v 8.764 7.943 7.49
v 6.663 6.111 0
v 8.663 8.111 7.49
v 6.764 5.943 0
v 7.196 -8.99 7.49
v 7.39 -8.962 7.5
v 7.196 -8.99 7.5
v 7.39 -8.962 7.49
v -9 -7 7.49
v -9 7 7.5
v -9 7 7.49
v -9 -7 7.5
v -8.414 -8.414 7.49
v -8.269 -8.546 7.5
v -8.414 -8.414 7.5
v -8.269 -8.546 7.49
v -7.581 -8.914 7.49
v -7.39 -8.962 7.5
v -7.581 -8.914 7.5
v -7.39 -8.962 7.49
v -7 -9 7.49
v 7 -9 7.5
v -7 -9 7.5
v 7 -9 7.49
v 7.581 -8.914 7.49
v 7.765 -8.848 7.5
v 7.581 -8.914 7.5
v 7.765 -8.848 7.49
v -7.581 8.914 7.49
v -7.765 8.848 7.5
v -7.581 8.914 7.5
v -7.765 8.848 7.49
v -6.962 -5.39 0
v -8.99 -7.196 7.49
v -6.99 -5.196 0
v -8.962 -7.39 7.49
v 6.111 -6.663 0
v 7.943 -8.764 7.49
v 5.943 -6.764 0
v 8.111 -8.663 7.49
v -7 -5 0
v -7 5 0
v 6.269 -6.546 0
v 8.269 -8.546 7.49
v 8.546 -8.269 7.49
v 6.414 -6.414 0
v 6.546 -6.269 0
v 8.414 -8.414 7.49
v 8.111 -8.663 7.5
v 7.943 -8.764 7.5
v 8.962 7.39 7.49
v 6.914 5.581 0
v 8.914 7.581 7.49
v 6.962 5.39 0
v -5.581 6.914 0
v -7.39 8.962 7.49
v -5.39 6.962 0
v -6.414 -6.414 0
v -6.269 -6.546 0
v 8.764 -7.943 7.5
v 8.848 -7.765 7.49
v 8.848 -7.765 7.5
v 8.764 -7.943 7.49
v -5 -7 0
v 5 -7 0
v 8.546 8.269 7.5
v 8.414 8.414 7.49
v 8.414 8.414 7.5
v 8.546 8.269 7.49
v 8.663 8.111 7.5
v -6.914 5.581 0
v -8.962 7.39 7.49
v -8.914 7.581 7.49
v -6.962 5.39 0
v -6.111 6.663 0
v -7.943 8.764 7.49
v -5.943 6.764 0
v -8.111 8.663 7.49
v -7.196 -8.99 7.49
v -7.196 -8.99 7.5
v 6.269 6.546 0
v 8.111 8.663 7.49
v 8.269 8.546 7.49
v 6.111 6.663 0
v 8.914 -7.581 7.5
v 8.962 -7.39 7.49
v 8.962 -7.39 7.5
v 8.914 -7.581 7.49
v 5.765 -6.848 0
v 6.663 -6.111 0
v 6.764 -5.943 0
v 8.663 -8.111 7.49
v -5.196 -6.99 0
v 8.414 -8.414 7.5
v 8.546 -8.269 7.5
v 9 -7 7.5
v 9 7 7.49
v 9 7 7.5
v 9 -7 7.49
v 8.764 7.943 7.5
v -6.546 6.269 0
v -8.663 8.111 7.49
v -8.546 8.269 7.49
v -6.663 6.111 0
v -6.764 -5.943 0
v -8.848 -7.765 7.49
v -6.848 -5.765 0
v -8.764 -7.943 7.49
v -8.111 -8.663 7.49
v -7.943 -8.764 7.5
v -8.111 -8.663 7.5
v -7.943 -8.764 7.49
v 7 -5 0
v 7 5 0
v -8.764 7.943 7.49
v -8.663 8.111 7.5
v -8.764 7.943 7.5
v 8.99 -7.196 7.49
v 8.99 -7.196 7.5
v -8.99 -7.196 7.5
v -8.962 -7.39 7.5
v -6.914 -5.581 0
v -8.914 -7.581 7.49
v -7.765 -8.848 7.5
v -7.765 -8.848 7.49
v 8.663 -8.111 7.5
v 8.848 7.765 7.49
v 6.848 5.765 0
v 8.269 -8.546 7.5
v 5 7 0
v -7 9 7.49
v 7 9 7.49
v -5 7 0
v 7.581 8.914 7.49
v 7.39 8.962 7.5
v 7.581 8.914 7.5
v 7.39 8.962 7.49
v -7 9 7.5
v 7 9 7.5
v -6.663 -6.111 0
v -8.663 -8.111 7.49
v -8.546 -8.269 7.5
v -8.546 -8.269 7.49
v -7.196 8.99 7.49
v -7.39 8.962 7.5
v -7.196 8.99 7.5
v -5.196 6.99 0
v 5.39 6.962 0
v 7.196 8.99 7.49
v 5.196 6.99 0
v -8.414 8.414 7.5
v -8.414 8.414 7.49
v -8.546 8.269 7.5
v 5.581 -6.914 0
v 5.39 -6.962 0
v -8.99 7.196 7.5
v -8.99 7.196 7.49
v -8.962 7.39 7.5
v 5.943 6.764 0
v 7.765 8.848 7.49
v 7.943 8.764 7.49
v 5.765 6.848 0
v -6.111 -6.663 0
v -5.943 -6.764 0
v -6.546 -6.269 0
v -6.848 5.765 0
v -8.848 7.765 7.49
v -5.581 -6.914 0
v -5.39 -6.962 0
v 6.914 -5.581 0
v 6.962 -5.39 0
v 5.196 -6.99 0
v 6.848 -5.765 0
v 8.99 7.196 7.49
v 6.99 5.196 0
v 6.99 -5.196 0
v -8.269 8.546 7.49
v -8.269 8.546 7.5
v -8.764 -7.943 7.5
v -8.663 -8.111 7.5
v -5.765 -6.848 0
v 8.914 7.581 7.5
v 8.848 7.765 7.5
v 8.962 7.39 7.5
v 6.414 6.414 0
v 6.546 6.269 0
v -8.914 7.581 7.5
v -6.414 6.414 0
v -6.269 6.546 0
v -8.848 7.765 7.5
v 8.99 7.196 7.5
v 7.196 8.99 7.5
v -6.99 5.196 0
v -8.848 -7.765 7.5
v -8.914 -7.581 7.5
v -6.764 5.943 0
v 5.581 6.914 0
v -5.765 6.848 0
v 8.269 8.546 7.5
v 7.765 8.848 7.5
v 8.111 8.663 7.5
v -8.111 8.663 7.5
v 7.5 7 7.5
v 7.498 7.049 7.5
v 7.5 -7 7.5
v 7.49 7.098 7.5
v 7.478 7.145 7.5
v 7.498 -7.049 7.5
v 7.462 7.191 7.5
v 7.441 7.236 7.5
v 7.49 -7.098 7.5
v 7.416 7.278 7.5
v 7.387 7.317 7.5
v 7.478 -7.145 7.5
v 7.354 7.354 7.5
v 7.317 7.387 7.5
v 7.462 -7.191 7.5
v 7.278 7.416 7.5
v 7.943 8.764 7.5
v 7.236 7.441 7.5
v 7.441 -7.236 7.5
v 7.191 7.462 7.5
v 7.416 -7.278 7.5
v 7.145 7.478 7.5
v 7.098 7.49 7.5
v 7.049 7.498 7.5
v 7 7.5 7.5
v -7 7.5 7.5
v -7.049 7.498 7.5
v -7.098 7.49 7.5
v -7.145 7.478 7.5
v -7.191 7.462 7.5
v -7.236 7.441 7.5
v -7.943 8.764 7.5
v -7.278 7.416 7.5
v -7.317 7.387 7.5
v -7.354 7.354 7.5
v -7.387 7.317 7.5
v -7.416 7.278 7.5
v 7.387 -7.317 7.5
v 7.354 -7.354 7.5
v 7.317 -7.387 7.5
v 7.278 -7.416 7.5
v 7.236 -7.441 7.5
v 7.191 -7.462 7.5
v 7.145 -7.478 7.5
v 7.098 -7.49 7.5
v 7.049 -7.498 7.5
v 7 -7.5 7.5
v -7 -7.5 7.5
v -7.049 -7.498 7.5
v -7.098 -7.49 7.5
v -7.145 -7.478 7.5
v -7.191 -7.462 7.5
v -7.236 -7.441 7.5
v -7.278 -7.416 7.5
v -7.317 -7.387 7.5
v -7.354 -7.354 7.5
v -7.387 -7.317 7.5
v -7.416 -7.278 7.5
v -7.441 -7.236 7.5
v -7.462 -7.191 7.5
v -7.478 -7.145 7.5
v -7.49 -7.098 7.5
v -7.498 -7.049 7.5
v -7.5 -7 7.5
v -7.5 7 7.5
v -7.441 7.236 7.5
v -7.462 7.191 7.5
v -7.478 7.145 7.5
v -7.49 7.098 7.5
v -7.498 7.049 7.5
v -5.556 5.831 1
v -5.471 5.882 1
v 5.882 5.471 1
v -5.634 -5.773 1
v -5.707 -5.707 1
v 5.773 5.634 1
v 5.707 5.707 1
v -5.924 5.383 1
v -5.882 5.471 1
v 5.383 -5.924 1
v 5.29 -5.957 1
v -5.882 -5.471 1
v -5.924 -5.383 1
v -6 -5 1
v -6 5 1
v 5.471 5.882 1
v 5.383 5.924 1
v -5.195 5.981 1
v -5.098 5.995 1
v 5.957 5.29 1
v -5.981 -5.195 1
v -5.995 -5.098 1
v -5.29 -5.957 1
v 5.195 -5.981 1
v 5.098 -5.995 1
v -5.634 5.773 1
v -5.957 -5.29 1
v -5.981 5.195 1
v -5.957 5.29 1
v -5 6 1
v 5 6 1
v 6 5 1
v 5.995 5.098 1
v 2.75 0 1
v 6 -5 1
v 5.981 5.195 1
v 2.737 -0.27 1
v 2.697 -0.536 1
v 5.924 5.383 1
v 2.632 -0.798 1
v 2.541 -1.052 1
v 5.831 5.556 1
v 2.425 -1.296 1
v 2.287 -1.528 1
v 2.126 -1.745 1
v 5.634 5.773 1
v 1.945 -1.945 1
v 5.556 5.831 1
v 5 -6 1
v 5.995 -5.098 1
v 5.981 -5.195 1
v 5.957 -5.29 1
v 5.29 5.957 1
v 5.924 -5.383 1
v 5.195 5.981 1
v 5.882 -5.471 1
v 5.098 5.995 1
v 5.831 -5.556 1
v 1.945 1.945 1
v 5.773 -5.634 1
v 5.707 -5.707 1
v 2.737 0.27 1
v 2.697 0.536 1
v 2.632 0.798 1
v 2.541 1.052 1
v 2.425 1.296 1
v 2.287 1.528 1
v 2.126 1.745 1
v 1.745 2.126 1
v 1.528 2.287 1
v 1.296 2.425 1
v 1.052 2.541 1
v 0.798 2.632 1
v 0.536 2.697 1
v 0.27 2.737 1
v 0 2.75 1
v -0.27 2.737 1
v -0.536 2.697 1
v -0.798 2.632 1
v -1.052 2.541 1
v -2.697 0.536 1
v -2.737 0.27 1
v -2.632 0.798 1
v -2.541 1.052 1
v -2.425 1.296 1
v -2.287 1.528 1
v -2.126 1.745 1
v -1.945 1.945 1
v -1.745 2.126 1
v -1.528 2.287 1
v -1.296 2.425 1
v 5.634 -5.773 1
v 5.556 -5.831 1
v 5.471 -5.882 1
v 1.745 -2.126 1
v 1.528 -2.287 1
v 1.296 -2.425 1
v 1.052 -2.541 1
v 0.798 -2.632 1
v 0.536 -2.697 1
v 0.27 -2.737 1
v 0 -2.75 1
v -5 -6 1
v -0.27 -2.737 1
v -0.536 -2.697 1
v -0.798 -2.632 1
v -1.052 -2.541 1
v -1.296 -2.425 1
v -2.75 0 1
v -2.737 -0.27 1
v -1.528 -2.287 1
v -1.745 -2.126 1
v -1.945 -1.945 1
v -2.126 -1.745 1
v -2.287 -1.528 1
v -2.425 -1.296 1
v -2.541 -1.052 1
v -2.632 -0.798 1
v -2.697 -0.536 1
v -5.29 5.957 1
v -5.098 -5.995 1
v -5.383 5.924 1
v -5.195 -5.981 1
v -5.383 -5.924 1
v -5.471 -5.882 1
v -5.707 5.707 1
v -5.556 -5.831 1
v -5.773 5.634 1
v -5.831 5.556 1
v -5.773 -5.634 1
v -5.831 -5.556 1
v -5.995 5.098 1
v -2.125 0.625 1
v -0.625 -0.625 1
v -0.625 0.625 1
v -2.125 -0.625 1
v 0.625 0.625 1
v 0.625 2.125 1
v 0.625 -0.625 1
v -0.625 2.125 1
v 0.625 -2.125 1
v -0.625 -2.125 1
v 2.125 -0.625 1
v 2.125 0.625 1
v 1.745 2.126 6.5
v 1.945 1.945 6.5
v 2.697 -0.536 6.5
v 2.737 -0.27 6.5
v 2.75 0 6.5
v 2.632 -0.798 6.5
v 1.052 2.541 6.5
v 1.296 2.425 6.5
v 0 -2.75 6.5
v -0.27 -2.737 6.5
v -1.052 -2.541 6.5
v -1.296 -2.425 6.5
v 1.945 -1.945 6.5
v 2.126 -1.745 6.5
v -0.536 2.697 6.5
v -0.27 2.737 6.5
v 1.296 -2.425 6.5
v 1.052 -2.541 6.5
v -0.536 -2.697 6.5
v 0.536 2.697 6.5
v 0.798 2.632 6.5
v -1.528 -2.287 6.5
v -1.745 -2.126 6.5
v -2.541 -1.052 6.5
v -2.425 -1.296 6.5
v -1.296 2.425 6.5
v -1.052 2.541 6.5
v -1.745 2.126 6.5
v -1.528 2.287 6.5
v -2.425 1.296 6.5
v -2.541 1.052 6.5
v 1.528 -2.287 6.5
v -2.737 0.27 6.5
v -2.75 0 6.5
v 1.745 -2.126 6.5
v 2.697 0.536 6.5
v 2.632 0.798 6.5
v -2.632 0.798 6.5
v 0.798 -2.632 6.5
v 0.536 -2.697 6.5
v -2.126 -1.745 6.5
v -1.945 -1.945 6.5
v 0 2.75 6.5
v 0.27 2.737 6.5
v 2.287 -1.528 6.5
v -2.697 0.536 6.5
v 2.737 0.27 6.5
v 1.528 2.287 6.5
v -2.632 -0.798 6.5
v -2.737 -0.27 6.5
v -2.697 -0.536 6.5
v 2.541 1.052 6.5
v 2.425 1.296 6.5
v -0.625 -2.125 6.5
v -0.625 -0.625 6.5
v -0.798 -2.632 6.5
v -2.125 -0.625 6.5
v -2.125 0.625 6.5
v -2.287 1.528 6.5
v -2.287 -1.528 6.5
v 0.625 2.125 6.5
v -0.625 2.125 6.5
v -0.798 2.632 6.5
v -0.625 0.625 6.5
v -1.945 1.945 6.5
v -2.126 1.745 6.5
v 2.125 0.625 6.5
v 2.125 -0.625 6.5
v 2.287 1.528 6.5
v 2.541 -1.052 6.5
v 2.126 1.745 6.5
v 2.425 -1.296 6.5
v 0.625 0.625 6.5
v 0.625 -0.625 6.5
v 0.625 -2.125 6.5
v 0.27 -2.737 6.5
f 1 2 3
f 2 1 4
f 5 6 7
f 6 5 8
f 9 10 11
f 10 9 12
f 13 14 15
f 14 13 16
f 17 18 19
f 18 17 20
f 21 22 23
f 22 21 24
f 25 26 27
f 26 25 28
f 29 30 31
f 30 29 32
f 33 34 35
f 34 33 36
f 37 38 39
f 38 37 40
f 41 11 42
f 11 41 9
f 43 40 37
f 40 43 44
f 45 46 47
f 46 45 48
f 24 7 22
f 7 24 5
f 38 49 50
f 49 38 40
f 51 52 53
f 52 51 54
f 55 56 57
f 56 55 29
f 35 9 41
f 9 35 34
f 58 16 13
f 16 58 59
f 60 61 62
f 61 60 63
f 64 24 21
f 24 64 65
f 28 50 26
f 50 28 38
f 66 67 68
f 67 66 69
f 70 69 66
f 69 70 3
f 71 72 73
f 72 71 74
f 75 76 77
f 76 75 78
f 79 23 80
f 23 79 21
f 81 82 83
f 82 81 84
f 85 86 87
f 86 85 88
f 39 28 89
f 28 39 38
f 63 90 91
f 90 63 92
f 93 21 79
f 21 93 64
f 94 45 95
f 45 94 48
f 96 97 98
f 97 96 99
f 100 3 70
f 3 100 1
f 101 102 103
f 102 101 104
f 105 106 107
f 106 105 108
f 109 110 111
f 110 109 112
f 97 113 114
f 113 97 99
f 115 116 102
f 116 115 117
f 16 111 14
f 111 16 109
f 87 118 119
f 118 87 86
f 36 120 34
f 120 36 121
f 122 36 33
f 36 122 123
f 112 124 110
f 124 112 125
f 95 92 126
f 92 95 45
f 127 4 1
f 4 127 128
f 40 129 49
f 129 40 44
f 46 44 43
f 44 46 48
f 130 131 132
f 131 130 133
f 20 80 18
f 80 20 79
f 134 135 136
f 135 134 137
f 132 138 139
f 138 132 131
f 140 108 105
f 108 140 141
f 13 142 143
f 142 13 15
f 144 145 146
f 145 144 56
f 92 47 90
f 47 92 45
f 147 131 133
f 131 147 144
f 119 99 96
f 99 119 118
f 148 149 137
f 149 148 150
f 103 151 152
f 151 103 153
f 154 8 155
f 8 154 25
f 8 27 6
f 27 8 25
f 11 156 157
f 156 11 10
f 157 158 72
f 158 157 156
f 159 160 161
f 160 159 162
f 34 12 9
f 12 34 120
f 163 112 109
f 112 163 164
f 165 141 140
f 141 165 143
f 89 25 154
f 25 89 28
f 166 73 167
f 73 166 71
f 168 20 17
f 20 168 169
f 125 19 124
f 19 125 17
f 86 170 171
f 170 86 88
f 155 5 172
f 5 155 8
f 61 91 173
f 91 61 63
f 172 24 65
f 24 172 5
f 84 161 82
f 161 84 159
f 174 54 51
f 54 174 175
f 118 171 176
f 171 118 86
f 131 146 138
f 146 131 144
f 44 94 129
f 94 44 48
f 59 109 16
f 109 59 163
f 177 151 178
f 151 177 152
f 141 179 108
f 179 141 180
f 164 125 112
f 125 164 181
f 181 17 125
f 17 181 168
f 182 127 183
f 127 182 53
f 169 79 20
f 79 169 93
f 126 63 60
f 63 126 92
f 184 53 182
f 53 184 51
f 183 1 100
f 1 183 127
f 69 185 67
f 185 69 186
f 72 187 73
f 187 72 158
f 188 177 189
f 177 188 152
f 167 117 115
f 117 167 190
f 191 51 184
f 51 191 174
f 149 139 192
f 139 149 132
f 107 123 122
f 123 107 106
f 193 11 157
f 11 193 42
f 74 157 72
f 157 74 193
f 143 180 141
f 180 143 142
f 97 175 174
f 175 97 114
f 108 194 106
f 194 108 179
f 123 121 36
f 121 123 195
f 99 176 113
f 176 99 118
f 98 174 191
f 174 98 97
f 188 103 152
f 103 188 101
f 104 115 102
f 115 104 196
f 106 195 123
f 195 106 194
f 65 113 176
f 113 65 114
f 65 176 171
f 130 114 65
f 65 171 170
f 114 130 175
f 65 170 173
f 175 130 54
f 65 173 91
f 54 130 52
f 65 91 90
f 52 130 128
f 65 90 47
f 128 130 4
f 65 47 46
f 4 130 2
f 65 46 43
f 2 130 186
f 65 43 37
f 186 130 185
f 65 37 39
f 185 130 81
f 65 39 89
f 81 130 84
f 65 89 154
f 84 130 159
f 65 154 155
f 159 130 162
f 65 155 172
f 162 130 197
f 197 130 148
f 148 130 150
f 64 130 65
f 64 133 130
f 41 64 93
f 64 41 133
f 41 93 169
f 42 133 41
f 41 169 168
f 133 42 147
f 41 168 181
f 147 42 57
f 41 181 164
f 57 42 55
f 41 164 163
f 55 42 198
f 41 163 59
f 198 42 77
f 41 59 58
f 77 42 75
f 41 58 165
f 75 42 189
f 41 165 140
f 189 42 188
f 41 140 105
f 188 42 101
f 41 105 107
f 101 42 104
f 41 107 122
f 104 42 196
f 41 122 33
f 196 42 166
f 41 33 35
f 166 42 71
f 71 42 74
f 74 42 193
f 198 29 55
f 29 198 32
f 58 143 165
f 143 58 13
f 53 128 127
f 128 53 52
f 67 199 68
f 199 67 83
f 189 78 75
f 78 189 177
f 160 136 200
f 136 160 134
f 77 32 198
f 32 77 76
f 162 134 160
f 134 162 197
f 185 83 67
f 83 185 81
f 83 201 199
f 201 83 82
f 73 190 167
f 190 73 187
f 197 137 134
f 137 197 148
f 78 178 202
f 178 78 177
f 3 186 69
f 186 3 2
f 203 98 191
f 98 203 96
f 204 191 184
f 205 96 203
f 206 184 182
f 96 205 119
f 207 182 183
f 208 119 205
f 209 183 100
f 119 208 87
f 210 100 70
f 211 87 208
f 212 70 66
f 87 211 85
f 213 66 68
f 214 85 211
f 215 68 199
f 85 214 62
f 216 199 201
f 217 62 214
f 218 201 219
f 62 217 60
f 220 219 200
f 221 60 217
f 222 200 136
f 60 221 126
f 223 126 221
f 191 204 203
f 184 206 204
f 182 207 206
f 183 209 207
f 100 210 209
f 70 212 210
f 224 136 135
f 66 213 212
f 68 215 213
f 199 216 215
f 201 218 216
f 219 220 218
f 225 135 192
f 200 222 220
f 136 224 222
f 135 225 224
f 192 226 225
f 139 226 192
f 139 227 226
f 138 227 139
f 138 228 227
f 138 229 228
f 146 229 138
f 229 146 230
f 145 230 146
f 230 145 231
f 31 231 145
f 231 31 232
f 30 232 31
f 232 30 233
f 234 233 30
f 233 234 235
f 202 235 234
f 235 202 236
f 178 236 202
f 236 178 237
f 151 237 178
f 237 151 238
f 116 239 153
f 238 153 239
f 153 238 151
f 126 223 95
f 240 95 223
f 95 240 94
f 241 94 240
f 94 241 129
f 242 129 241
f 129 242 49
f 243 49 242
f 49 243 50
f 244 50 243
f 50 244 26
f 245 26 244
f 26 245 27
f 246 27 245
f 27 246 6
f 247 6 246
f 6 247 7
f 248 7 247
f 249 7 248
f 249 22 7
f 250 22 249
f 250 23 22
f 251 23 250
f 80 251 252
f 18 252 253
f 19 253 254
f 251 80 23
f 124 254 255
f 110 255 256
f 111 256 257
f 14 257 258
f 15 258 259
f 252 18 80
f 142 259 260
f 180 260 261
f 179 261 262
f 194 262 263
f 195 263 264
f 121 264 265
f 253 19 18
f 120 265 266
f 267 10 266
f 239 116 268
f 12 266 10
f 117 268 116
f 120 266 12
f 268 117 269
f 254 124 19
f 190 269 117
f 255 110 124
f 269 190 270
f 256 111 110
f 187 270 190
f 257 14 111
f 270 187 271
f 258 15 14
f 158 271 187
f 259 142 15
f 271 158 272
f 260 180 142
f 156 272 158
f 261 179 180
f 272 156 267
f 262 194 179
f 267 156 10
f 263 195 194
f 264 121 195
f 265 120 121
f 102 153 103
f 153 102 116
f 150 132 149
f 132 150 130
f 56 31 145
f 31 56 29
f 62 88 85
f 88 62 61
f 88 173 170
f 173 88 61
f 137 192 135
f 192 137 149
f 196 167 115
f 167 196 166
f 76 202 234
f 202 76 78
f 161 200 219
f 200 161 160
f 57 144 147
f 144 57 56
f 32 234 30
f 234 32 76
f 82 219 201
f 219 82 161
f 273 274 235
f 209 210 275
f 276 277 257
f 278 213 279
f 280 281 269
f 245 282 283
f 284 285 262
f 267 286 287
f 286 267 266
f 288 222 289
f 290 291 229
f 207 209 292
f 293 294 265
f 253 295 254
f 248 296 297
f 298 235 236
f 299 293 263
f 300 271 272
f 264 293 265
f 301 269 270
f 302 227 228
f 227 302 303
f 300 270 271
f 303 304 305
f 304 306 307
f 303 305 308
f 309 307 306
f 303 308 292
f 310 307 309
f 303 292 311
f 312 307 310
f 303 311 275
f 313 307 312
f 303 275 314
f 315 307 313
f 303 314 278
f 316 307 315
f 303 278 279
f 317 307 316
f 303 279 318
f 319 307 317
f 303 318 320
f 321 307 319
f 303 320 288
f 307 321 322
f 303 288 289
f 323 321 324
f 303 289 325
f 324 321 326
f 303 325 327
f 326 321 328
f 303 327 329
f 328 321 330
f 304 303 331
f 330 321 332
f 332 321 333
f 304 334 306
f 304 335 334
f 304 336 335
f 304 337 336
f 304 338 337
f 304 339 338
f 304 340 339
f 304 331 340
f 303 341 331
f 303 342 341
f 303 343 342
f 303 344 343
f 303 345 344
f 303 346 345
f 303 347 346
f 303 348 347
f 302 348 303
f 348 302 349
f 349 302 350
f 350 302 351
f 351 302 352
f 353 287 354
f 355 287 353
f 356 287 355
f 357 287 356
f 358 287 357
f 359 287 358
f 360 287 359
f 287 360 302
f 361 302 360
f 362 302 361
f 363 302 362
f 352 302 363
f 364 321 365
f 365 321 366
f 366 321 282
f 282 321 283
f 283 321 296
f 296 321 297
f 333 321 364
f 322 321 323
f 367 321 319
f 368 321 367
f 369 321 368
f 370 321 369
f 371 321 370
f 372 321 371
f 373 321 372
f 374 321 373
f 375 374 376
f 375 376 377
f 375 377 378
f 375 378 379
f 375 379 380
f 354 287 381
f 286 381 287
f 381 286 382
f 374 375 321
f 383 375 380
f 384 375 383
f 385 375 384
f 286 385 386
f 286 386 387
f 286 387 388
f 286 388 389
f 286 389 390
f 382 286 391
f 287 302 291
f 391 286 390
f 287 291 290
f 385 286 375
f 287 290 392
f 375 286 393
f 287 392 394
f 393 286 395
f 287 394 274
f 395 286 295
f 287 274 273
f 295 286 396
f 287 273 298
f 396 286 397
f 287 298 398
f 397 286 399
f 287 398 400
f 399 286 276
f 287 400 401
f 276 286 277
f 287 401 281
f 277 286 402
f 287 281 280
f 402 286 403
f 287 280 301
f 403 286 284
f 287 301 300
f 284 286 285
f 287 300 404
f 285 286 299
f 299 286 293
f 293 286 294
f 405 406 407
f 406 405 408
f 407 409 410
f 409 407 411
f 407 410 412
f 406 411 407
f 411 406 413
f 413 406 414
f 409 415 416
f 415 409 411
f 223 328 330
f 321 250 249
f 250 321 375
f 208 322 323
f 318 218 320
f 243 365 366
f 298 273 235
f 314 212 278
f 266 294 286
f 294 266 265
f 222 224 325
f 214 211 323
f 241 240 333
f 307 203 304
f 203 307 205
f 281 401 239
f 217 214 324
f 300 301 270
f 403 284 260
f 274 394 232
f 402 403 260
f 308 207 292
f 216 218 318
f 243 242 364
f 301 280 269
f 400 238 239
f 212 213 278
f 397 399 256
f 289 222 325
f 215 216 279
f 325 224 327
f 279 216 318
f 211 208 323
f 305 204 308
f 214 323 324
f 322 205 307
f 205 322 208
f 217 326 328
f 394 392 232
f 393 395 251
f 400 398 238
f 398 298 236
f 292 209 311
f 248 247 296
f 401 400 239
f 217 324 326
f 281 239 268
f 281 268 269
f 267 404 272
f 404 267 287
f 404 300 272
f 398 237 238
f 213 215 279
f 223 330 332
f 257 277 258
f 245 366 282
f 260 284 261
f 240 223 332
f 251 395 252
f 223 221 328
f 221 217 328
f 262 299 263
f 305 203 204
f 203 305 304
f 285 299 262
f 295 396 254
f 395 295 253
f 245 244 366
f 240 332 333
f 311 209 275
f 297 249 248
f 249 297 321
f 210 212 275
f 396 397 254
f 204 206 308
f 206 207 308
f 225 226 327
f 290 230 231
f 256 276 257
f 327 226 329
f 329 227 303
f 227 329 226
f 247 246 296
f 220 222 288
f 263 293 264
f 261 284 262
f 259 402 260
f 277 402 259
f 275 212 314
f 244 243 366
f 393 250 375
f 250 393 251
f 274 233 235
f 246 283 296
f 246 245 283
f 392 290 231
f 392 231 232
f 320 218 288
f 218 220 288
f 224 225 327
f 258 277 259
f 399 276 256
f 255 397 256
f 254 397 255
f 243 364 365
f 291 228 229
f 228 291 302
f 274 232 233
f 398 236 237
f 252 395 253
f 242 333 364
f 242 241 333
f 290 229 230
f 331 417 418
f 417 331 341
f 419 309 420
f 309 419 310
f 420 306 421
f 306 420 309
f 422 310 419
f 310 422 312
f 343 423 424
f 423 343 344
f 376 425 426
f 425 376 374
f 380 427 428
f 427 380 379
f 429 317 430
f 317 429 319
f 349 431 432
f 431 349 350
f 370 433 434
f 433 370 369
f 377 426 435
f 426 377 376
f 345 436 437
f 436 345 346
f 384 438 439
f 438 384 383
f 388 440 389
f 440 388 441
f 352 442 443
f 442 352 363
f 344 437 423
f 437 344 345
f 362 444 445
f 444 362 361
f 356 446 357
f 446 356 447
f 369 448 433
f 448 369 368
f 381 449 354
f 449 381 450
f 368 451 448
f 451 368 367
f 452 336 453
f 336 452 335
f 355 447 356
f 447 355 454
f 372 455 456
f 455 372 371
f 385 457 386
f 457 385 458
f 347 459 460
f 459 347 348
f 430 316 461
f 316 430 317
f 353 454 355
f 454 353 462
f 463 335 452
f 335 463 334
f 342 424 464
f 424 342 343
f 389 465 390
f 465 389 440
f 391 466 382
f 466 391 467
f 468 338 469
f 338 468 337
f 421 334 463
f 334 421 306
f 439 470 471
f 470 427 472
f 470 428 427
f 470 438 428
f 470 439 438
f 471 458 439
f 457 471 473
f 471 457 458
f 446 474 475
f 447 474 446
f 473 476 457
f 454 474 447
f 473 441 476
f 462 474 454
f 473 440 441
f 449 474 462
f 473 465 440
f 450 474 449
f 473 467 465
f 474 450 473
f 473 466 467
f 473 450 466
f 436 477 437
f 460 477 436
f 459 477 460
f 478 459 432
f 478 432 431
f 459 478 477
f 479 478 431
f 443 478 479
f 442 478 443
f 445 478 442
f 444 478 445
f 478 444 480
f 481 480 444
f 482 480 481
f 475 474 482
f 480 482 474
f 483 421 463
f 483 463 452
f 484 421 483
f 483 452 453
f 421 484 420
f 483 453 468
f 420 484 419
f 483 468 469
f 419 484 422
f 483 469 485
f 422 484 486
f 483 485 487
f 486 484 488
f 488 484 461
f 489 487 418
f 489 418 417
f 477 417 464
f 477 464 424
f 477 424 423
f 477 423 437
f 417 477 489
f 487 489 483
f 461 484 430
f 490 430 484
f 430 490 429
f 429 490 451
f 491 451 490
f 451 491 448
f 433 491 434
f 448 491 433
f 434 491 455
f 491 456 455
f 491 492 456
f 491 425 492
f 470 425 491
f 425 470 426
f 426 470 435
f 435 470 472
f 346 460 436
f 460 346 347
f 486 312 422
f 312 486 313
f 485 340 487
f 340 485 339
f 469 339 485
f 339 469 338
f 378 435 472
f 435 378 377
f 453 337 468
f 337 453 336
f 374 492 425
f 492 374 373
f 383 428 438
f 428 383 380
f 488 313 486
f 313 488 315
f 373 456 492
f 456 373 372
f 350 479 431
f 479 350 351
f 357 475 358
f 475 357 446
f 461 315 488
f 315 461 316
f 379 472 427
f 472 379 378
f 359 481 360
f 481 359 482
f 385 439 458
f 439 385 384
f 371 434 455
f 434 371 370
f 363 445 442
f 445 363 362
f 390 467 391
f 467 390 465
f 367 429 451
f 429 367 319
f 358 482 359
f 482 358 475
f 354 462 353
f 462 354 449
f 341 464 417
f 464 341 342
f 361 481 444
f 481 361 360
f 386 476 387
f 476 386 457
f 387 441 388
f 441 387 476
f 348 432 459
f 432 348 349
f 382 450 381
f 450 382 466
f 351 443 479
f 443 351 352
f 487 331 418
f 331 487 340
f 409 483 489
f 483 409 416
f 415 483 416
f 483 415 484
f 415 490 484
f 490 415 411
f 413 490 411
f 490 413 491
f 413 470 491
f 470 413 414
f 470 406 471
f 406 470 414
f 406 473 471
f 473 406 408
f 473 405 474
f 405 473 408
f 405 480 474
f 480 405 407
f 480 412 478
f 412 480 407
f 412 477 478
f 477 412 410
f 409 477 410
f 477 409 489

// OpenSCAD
// Cherry MX keycap generator with a text legend on top.
// Dimensions are taken from special_keycaps.3mf (Bambu Parametric Model Maker).
// Open in OpenSCAD and use the Customizer (Window > Customizer) to change values.

/* [Legend] */
legend          = "A";
// Any font installed on your system, e.g. "Liberation Sans:style=Bold"
font            = "Liberation Sans:style=Bold";
font_size       = 6;
// embossed = raised, debossed = engraved, inlay = flush (separate body for multi-colour), none
legend_mode     = "inlay"; // [embossed, debossed, inlay, none]
legend_depth    = 0.3;
legend_rotation = 0;
legend_offset   = [0, 0];

/* [Size] */
// Key width in units (1, 1.25, 1.5, 2, 2.25, ...)
units           = 1;
unit_pitch      = 19.05;
// Which part to output (inlay mode: export "cap" and "legend" separately as one multi-part object)
part            = "all"; // [all, cap, legend]
// Flip so the top sits on the bed, like the reference print
print_orientation = true;

/* [Shape] */
height          = 7.5;
base_size       = 18;     // 1u outer size at the base
top_size        = 14;     // 1u outer size at the top
base_radius     = 2;
top_radius      = 2;
top_thickness   = 1;
wall_thickness  = 1.5;    // at the base; tapers to `top_wall` at the top
top_wall        = 1;

/* [Stem] */
stem_diameter   = 5.5;
cross_length    = 4.25;
cross_width     = 1.25;
// Extra clearance added to the cross slot (increase if too tight)
cross_tolerance = 0;
// Stem stops this far above the rim
stem_recess     = 1;
// Extra stems for wide keys (2u+), Cherry stabilizer spacing from centre
stabilizers     = "auto"; // [auto, none]

/* [Hidden] */
$fn  = 64;
eps  = 0.01;
extra_w = (units - 1) * unit_pitch;

function stab_offset(u) =
    u >= 6.25 ? 50 :
    u >= 3    ? 19.05 :
    u >= 2    ? 11.938 : 0;

module rrect(w, d, r) {
    offset(r = r) square([w - 2 * r, d - 2 * r], center = true);
}

// Tapered rounded box: bottom at z=0, top at z=h
module frustum(bw, bd, br, tw, td, tr, h) {
    hull() {
        linear_extrude(eps) rrect(bw, bd, br);
        translate([0, 0, h - eps]) linear_extrude(eps) rrect(tw, td, tr);
    }
}

module shell() {
    bw = base_size + extra_w;  tw = top_size + extra_w;
    difference() {
        frustum(bw, base_size, base_radius, tw, top_size, top_radius, height);
        translate([0, 0, -eps])
            frustum(bw - 2 * wall_thickness, base_size - 2 * wall_thickness,
                    max(base_radius - wall_thickness, 0.5),
                    tw - 2 * top_wall, top_size - 2 * top_wall,
                    max(top_radius - top_wall, 0.5),
                    height - top_thickness + eps);
    }
}

module stem() {
    l = cross_length + cross_tolerance;
    w = cross_width + cross_tolerance;
    translate([0, 0, stem_recess])
    difference() {
        cylinder(d = stem_diameter, h = height - stem_recess - top_thickness + eps);
        translate([0, 0, -eps]) linear_extrude(height) {
            square([l, w], center = true);
            square([w, l], center = true);
        }
    }
}

module stems() {
    stem();
    s = stab_offset(units);
    if (stabilizers == "auto" && s > 0)
        for (x = [-s, s]) translate([x, 0, 0]) stem();
}

module legend_2d() {
    translate(legend_offset) rotate(legend_rotation)
        text(legend, size = font_size, font = font,
             halign = "center", valign = "center");
}

module legend_body(z0, h) {
    translate([0, 0, z0]) linear_extrude(h) legend_2d();
}

module cap() {
    difference() {
        union() { shell(); stems(); }
        if (legend_mode == "debossed" || legend_mode == "inlay")
            legend_body(height - legend_depth, legend_depth + eps);
    }
}

module legend_part() {
    if (legend_mode == "inlay")
        legend_body(height - legend_depth, legend_depth);
    else if (legend_mode == "embossed")
        legend_body(height - eps, legend_depth + eps);
}

module orient() {
    if (print_orientation)
        translate([0, 0, height + (legend_mode == "embossed" ? legend_depth : 0)])
            rotate([180, 0, 0]) children();
    else children();
}

orient() {
    if (part == "all" || part == "cap") color("DimGray") cap();
    if ((part == "all" || part == "legend") && legend_mode != "none" && legend != "")
        color("White") legend_part();
}
